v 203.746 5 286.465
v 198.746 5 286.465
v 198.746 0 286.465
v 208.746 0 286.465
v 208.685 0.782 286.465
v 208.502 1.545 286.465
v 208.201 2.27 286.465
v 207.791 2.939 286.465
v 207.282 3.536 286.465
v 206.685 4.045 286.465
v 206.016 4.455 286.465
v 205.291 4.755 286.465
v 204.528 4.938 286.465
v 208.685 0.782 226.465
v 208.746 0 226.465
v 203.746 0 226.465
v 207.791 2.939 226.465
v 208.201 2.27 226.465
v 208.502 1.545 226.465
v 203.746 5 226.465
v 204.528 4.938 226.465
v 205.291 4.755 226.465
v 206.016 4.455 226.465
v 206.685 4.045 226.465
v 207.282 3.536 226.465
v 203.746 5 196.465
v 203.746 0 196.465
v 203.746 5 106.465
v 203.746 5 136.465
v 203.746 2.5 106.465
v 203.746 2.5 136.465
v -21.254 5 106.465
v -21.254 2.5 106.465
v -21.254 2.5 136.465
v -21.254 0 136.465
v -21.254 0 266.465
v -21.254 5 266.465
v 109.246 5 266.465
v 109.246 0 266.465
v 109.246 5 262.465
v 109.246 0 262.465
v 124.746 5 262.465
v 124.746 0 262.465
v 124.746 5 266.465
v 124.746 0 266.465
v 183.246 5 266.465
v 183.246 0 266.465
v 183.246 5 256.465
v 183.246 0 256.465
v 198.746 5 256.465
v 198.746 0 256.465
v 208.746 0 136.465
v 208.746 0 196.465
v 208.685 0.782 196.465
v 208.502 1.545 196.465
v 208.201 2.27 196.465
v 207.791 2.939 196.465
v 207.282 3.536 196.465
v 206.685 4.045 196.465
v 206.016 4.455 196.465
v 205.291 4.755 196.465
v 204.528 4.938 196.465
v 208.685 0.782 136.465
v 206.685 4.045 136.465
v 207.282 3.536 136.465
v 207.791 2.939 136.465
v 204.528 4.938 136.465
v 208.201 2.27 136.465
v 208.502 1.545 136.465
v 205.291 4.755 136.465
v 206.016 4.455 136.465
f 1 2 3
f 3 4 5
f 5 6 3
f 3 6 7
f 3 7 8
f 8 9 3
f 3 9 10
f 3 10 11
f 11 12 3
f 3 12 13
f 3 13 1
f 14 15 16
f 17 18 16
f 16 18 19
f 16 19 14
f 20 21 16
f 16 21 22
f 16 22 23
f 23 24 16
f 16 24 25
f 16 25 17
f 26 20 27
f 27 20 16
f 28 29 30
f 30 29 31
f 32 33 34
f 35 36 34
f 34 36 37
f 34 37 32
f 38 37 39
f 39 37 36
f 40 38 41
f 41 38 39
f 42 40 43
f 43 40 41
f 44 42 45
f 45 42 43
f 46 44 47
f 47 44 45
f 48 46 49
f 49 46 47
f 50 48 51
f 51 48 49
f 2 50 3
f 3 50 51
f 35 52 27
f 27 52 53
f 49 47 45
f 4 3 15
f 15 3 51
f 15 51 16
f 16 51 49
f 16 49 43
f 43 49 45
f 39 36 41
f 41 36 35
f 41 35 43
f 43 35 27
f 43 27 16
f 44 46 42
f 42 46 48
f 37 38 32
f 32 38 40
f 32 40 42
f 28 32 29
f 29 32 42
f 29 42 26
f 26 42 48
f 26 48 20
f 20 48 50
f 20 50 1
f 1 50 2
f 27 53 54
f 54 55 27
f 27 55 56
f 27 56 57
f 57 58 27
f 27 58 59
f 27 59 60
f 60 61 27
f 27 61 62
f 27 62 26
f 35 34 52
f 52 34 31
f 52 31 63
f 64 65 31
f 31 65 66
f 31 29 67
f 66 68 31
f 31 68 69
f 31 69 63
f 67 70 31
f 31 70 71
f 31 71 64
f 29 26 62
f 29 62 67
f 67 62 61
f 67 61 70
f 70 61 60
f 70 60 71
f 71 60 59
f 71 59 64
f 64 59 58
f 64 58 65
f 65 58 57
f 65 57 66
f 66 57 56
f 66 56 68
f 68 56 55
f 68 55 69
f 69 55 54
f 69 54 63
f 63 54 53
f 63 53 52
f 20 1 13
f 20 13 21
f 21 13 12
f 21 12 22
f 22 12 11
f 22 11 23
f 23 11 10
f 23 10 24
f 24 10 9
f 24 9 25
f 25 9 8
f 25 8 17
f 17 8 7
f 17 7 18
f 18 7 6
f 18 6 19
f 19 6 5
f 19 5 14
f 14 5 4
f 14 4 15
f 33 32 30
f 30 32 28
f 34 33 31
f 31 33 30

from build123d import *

# Parameters (mm, degrees)
SKETCH_1_W          = 5
SKETCH_1_H          = 60
SKETCH_1_W_2        = 30
SKETCH_1_H_2        = 5
SKETCH_1_W_3        = 15
EXTRUDE_1_DEPTH     = 5
FILLET_1_R          = 5
SKETCH_2_W          = 245
SKETCH_2_H          = 155
CUT_EXTRUDE_1_DEPTH = 5
SKETCH_3_W          = 30
SKETCH_3_H          = 2.5
CUT_EXTRUDE_2_DEPTH = 365.296775248


with BuildPart() as part:
    # 草圖1 → 填料-伸長1 (new body)
    with BuildSketch(Plane(origin=(0, 0, 0), x_dir=(1, 0, 0), z_dir=(0, 1, 0))):
        Polygon((198.746286718, -286.464902661), (198.746286718, -256.464902661), (183.246286718, -256.464902661), (183.246286718, -266.464902661), (124.746286718, -266.464902661), (124.746286718, -262.464902661), (109.246286718, -262.464902661), (109.246286718, -266.464902661), (-21.253713282, -266.464902661), (-21.253713282, 38.535097339), (-36.253713282, 38.535097339), (-36.253713282, 43.535097339), (203.746286718, 43.535097339), (203.746286718, -286.464902661), align=None)
        with Locations((206.246286718, -256.464902661)):
            Rectangle(SKETCH_1_W, SKETCH_1_H)
        with Locations((206.246286718, 13.535097339)):
            Rectangle(SKETCH_1_W, SKETCH_1_H)
        with Locations((188.746286718, 46.035097339)):
            Rectangle(SKETCH_1_W_2, SKETCH_1_H_2)
        with Locations((-21.253713282, 46.035097339)):
            Rectangle(SKETCH_1_W_2, SKETCH_1_H_2)
        with Locations((91.246286718, 46.035097339)):
            Rectangle(SKETCH_1_W_3, SKETCH_1_H_2)
        with Locations((76.246286718, 46.035097339)):
            Rectangle(SKETCH_1_W_3, SKETCH_1_H_2)
        with Locations((206.246286718, -166.464902661)):
            Rectangle(SKETCH_1_W, SKETCH_1_H)
        with Locations((206.246286718, -76.464902661)):
            Rectangle(SKETCH_1_W, SKETCH_1_H)
    extrude(amount=EXTRUDE_1_DEPTH)

    # 圓角1
    fillet_1_edges = [part.edges().sort_by_distance(p)[0] for p in [
        (208.746286718, 5, -13.535097339),
        (208.746286718, 5, 76.464902661),
        (208.746286718, 5, 166.464902661),
        (208.746286718, 5, 256.464902661),
    ]]
    fillet(fillet_1_edges, radius=FILLET_1_R - 0.0001)  # a hair under: the kernel refuses the full size

    # 草圖2 → 除料-伸長1 (cut)
    with BuildSketch(Plane(origin=(0, 5, 0), x_dir=(1, 0, 0), z_dir=(0, 1, 0))):
        with Locations((86.246286718, -28.964902661)):
            Rectangle(SKETCH_2_W, SKETCH_2_H)
    extrude(amount=-CUT_EXTRUDE_1_DEPTH, mode=Mode.SUBTRACT)

    # 草圖3 → 除料-伸長2 (cut, through all)
    with BuildSketch(Plane(origin=(203.746286718, 0, 0), x_dir=(0, 0, -1), z_dir=(1, 0, 0))):
        with Locations((-121.464902661, 1.25)):
            Rectangle(SKETCH_3_W, SKETCH_3_H)
    extrude(amount=-CUT_EXTRUDE_2_DEPTH, mode=Mode.SUBTRACT)


solid = part.part
